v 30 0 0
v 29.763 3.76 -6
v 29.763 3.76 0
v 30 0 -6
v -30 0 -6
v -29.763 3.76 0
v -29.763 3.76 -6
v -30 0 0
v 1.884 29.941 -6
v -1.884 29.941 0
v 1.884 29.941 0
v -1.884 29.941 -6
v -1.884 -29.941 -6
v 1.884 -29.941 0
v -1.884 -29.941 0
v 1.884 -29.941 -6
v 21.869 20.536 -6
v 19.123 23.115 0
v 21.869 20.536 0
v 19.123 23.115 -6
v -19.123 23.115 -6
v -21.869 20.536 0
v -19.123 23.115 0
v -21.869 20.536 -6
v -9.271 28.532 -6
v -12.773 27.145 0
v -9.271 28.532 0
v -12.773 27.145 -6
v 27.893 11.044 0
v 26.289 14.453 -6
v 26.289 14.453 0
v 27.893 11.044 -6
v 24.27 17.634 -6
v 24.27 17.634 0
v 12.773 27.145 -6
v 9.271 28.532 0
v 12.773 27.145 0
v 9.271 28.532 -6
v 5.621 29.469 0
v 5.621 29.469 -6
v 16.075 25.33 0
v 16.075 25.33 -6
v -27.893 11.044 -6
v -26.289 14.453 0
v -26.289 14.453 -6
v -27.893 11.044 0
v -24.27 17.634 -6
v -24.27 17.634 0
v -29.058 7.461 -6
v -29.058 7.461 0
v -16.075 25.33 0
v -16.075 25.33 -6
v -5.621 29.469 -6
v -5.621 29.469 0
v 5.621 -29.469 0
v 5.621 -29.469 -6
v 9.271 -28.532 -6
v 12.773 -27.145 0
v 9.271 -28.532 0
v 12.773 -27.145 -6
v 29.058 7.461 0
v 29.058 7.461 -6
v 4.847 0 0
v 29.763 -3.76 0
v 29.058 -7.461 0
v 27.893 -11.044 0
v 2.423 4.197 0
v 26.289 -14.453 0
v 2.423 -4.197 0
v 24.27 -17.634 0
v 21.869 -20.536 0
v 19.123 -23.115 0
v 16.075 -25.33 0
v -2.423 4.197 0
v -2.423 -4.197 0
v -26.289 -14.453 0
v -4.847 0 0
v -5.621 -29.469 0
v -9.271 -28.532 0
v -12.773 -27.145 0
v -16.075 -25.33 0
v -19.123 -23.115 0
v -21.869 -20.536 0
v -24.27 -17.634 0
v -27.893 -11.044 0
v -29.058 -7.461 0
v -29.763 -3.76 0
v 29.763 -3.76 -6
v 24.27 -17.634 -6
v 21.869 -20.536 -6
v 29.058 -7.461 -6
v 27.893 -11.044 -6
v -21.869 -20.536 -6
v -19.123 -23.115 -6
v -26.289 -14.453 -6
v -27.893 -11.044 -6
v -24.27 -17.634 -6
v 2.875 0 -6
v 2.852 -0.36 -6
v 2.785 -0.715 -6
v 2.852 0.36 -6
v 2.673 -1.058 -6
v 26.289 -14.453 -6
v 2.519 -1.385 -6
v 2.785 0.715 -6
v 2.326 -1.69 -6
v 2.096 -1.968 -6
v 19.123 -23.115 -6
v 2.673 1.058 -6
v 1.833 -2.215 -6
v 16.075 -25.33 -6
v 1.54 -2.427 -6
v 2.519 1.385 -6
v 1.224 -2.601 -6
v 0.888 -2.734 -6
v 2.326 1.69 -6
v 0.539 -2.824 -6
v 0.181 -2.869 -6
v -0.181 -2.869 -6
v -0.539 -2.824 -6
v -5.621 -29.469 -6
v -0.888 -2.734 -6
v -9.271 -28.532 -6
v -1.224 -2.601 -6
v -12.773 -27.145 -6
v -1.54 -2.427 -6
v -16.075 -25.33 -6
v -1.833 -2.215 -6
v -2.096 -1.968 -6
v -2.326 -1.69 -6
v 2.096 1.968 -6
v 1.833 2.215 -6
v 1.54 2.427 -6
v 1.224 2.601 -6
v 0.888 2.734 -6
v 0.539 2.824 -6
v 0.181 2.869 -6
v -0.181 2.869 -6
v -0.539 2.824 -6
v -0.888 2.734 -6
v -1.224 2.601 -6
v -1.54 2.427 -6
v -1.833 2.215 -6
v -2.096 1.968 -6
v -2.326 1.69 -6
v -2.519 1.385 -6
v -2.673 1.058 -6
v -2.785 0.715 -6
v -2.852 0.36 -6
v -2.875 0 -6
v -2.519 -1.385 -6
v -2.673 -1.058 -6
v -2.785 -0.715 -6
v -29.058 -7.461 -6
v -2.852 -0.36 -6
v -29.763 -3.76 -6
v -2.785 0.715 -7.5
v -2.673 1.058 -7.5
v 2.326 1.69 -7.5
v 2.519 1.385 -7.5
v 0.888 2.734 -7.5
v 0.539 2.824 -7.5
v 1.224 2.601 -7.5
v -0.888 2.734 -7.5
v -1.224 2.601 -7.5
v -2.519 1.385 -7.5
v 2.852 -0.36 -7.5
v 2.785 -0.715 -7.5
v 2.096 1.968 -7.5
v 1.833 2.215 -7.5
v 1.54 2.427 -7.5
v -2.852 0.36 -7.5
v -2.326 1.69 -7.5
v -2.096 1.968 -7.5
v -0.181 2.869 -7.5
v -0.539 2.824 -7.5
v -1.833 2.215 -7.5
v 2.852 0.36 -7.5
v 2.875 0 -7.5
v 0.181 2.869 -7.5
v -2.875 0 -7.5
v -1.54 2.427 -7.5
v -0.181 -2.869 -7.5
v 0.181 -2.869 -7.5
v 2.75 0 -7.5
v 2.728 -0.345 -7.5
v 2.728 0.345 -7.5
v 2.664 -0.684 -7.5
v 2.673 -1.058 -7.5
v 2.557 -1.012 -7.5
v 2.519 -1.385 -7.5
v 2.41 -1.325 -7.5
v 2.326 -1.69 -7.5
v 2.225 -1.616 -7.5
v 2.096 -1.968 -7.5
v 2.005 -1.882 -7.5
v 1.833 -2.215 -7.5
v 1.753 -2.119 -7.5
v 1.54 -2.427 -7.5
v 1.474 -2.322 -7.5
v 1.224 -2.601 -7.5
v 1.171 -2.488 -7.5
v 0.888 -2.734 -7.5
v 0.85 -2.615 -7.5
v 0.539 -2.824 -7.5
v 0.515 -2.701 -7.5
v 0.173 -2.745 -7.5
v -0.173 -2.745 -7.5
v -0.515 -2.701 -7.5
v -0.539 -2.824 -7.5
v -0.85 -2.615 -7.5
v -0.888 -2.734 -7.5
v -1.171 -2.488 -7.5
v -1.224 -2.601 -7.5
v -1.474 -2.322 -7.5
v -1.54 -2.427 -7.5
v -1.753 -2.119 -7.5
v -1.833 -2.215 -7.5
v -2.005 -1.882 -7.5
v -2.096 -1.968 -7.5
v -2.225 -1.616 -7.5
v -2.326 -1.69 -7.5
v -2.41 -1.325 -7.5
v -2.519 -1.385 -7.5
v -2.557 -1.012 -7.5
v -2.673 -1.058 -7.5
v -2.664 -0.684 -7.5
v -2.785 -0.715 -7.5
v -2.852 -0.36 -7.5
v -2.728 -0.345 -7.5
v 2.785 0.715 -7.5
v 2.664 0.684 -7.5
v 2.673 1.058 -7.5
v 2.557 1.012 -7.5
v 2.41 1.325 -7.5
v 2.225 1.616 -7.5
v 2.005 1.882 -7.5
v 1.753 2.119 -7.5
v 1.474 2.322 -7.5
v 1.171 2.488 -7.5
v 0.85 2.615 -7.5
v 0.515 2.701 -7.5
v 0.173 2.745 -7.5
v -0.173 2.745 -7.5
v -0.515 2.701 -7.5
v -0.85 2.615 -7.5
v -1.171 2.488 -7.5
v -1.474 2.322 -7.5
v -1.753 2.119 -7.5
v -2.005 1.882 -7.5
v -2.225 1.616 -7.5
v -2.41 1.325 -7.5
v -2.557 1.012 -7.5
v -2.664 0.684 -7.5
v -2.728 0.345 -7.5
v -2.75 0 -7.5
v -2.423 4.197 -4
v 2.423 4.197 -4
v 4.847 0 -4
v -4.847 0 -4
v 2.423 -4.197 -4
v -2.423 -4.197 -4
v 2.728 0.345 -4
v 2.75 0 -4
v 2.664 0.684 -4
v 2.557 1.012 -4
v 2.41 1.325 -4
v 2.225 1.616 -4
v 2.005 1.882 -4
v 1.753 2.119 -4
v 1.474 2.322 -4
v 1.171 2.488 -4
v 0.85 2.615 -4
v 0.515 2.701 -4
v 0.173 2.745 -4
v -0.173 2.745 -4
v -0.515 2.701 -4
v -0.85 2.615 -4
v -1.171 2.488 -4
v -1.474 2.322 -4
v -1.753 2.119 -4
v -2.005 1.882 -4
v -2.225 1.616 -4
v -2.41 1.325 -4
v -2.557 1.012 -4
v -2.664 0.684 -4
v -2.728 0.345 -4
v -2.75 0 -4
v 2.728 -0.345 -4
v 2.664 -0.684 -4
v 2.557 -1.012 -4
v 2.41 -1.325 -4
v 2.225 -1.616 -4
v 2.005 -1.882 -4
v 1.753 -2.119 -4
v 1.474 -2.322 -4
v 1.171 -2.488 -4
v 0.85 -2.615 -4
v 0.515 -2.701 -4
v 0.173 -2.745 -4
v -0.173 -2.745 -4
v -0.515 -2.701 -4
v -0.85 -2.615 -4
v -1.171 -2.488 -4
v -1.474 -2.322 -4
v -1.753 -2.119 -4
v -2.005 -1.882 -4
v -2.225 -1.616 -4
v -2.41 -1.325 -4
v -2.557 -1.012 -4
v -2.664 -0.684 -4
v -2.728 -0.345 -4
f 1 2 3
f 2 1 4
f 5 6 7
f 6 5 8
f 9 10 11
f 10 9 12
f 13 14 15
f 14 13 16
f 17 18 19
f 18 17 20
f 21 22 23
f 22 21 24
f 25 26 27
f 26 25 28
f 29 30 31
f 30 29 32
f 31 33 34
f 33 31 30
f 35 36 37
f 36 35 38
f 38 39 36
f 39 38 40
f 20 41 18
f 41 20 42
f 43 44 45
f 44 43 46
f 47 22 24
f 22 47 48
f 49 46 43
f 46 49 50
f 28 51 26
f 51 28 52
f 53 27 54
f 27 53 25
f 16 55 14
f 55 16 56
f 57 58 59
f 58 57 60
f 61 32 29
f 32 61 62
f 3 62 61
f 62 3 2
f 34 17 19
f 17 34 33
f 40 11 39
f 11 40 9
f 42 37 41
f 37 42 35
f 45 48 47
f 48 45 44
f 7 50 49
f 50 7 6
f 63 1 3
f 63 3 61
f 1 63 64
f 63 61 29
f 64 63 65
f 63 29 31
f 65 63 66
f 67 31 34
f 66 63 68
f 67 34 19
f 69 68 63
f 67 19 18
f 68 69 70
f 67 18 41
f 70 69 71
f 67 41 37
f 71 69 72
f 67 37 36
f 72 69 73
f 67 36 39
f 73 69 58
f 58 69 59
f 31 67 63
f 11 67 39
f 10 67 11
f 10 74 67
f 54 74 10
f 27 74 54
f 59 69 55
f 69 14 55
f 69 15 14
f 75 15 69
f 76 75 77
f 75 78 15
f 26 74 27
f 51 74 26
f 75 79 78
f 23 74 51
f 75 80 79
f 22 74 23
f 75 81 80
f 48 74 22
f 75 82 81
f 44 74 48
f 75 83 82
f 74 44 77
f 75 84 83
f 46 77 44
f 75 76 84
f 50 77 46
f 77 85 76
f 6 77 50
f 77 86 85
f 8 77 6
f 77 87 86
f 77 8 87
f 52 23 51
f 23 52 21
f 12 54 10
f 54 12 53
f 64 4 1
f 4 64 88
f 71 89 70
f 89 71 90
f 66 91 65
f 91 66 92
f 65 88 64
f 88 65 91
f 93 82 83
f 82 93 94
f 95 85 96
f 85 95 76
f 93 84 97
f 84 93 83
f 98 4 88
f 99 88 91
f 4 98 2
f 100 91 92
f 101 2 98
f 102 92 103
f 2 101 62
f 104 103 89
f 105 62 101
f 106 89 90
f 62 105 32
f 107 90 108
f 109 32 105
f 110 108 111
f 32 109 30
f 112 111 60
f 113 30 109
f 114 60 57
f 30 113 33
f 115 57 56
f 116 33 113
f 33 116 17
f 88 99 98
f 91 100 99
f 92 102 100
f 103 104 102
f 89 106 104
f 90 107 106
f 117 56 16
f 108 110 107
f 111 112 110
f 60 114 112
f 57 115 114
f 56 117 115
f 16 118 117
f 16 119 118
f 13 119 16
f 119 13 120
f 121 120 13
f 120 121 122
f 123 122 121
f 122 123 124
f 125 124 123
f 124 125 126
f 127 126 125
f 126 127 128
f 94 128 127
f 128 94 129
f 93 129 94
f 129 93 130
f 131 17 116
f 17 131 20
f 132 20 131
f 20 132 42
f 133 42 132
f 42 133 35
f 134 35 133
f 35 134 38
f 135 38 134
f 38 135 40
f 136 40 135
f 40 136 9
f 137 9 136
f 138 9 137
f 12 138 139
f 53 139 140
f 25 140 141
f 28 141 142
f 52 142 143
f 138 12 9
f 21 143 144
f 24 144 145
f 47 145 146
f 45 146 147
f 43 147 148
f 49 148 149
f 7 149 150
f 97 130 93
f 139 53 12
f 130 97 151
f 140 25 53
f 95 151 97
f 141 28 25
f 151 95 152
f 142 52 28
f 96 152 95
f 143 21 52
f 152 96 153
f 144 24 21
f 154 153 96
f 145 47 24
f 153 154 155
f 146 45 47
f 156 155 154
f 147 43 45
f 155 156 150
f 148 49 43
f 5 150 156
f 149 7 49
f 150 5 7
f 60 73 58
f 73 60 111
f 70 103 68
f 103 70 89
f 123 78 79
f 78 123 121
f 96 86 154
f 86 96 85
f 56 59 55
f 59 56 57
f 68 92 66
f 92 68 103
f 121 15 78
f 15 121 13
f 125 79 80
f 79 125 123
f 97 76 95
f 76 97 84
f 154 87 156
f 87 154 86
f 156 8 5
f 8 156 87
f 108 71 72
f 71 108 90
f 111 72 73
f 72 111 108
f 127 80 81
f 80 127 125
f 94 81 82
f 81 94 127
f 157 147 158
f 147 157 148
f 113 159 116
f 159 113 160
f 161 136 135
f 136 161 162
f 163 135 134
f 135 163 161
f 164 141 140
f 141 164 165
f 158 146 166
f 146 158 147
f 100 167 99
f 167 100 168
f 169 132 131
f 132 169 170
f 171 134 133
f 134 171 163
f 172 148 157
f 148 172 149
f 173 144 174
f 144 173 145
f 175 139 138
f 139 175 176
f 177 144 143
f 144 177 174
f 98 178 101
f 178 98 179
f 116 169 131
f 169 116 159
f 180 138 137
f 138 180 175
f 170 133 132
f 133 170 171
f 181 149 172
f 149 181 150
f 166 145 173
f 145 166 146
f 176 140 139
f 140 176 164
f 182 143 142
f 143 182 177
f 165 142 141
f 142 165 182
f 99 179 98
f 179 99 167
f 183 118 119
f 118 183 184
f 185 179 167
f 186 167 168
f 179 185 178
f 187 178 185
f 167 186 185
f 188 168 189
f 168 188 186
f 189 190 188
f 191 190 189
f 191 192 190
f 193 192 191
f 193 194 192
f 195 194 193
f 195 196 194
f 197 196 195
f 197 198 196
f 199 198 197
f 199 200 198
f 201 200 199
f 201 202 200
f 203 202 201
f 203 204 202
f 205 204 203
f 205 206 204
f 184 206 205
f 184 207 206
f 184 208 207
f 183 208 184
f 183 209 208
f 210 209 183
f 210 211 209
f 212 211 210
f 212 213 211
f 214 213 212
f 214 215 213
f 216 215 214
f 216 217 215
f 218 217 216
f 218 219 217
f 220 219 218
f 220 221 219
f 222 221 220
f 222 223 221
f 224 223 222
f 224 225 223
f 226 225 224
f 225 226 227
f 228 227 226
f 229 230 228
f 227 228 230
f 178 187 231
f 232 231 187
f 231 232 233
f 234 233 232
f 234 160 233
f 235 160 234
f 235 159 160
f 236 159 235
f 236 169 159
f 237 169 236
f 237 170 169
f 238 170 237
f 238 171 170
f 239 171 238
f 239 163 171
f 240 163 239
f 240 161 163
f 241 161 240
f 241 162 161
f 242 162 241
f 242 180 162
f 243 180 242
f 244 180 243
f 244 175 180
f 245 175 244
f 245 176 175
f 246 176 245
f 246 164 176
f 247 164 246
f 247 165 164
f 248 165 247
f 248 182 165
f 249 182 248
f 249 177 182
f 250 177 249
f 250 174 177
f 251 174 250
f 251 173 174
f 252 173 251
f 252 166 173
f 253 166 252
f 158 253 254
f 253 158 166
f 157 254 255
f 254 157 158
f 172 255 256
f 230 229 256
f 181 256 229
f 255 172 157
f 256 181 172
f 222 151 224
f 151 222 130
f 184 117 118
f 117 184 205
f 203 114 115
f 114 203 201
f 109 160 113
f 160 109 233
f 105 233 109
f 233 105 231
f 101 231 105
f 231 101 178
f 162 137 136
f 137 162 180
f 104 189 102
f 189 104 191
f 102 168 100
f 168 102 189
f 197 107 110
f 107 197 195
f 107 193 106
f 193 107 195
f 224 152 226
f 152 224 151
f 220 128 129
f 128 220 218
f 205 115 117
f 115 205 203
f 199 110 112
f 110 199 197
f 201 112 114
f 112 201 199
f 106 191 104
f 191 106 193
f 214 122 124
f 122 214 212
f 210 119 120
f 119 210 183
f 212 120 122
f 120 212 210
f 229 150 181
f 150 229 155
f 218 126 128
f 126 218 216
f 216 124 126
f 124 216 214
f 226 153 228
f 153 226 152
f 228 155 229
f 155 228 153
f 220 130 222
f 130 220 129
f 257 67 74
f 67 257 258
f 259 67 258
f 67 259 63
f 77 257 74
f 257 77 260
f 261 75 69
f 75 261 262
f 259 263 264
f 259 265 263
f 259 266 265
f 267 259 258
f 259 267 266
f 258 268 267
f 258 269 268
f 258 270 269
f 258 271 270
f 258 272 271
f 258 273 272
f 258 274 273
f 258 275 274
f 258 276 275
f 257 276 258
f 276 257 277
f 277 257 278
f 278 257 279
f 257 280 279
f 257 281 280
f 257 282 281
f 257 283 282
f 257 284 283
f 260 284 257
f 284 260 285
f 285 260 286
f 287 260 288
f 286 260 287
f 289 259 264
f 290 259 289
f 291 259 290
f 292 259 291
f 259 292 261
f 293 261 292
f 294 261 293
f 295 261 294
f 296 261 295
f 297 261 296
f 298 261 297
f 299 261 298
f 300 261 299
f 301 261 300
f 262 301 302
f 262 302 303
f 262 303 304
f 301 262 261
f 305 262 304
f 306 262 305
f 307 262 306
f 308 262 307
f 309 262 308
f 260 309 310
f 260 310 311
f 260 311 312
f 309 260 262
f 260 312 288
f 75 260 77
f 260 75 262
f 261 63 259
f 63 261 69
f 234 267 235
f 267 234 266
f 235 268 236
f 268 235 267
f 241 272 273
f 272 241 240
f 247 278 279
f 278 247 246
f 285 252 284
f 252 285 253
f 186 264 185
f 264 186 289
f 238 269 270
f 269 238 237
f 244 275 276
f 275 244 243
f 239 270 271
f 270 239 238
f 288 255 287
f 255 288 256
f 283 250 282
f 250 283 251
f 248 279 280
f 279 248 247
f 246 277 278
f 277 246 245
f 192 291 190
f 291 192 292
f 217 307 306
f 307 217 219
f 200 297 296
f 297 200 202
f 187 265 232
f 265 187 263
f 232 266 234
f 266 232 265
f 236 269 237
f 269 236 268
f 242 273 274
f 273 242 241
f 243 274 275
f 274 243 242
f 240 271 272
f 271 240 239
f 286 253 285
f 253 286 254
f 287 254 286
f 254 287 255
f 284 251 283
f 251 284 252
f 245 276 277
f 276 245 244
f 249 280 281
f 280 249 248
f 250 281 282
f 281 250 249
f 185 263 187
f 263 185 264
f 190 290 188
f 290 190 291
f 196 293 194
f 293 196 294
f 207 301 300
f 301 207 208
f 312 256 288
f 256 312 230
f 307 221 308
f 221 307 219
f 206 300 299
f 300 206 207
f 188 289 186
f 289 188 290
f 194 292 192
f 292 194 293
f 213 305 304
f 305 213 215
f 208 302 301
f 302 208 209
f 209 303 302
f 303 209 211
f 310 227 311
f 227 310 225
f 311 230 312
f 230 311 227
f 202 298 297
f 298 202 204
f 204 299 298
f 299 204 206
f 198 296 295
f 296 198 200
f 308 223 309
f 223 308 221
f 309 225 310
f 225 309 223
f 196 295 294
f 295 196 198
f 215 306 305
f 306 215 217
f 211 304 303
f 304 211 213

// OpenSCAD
$fn = 50;


difference() {
	union() {
		translate(v = [0, 0, -6.0000000000]) {
			cylinder(h = 6.0000000000, r = 30.0000000000);
		}
		translate(v = [0, 0, -7.5000000000]) {
			cylinder(h = 7.5000000000, r = 2.8750000000);
		}
	}
	union() {
		translate(v = [0, 0, 0]) {
			rotate(a = [0, 0, 0]) {
				difference() {
					union() {
						translate(v = [0, 0, -4]) {
							linear_extrude(height = 4) {
								polygon(points = [[4.8468000000, 0.0000000000], [2.4234000000, 4.1974519271], [-2.4234000000, 4.1974519271], [-4.8468000000, 0.0000000000], [-2.4234000000, -4.1974519271], [2.4234000000, -4.1974519271]]);
							}
						}
					}
					union();
				}
			}
		}
		#translate(v = [0, 0, -100.0000000000]) {
			cylinder(h = 200, r = 2.7500000000);
		}
	}
}
